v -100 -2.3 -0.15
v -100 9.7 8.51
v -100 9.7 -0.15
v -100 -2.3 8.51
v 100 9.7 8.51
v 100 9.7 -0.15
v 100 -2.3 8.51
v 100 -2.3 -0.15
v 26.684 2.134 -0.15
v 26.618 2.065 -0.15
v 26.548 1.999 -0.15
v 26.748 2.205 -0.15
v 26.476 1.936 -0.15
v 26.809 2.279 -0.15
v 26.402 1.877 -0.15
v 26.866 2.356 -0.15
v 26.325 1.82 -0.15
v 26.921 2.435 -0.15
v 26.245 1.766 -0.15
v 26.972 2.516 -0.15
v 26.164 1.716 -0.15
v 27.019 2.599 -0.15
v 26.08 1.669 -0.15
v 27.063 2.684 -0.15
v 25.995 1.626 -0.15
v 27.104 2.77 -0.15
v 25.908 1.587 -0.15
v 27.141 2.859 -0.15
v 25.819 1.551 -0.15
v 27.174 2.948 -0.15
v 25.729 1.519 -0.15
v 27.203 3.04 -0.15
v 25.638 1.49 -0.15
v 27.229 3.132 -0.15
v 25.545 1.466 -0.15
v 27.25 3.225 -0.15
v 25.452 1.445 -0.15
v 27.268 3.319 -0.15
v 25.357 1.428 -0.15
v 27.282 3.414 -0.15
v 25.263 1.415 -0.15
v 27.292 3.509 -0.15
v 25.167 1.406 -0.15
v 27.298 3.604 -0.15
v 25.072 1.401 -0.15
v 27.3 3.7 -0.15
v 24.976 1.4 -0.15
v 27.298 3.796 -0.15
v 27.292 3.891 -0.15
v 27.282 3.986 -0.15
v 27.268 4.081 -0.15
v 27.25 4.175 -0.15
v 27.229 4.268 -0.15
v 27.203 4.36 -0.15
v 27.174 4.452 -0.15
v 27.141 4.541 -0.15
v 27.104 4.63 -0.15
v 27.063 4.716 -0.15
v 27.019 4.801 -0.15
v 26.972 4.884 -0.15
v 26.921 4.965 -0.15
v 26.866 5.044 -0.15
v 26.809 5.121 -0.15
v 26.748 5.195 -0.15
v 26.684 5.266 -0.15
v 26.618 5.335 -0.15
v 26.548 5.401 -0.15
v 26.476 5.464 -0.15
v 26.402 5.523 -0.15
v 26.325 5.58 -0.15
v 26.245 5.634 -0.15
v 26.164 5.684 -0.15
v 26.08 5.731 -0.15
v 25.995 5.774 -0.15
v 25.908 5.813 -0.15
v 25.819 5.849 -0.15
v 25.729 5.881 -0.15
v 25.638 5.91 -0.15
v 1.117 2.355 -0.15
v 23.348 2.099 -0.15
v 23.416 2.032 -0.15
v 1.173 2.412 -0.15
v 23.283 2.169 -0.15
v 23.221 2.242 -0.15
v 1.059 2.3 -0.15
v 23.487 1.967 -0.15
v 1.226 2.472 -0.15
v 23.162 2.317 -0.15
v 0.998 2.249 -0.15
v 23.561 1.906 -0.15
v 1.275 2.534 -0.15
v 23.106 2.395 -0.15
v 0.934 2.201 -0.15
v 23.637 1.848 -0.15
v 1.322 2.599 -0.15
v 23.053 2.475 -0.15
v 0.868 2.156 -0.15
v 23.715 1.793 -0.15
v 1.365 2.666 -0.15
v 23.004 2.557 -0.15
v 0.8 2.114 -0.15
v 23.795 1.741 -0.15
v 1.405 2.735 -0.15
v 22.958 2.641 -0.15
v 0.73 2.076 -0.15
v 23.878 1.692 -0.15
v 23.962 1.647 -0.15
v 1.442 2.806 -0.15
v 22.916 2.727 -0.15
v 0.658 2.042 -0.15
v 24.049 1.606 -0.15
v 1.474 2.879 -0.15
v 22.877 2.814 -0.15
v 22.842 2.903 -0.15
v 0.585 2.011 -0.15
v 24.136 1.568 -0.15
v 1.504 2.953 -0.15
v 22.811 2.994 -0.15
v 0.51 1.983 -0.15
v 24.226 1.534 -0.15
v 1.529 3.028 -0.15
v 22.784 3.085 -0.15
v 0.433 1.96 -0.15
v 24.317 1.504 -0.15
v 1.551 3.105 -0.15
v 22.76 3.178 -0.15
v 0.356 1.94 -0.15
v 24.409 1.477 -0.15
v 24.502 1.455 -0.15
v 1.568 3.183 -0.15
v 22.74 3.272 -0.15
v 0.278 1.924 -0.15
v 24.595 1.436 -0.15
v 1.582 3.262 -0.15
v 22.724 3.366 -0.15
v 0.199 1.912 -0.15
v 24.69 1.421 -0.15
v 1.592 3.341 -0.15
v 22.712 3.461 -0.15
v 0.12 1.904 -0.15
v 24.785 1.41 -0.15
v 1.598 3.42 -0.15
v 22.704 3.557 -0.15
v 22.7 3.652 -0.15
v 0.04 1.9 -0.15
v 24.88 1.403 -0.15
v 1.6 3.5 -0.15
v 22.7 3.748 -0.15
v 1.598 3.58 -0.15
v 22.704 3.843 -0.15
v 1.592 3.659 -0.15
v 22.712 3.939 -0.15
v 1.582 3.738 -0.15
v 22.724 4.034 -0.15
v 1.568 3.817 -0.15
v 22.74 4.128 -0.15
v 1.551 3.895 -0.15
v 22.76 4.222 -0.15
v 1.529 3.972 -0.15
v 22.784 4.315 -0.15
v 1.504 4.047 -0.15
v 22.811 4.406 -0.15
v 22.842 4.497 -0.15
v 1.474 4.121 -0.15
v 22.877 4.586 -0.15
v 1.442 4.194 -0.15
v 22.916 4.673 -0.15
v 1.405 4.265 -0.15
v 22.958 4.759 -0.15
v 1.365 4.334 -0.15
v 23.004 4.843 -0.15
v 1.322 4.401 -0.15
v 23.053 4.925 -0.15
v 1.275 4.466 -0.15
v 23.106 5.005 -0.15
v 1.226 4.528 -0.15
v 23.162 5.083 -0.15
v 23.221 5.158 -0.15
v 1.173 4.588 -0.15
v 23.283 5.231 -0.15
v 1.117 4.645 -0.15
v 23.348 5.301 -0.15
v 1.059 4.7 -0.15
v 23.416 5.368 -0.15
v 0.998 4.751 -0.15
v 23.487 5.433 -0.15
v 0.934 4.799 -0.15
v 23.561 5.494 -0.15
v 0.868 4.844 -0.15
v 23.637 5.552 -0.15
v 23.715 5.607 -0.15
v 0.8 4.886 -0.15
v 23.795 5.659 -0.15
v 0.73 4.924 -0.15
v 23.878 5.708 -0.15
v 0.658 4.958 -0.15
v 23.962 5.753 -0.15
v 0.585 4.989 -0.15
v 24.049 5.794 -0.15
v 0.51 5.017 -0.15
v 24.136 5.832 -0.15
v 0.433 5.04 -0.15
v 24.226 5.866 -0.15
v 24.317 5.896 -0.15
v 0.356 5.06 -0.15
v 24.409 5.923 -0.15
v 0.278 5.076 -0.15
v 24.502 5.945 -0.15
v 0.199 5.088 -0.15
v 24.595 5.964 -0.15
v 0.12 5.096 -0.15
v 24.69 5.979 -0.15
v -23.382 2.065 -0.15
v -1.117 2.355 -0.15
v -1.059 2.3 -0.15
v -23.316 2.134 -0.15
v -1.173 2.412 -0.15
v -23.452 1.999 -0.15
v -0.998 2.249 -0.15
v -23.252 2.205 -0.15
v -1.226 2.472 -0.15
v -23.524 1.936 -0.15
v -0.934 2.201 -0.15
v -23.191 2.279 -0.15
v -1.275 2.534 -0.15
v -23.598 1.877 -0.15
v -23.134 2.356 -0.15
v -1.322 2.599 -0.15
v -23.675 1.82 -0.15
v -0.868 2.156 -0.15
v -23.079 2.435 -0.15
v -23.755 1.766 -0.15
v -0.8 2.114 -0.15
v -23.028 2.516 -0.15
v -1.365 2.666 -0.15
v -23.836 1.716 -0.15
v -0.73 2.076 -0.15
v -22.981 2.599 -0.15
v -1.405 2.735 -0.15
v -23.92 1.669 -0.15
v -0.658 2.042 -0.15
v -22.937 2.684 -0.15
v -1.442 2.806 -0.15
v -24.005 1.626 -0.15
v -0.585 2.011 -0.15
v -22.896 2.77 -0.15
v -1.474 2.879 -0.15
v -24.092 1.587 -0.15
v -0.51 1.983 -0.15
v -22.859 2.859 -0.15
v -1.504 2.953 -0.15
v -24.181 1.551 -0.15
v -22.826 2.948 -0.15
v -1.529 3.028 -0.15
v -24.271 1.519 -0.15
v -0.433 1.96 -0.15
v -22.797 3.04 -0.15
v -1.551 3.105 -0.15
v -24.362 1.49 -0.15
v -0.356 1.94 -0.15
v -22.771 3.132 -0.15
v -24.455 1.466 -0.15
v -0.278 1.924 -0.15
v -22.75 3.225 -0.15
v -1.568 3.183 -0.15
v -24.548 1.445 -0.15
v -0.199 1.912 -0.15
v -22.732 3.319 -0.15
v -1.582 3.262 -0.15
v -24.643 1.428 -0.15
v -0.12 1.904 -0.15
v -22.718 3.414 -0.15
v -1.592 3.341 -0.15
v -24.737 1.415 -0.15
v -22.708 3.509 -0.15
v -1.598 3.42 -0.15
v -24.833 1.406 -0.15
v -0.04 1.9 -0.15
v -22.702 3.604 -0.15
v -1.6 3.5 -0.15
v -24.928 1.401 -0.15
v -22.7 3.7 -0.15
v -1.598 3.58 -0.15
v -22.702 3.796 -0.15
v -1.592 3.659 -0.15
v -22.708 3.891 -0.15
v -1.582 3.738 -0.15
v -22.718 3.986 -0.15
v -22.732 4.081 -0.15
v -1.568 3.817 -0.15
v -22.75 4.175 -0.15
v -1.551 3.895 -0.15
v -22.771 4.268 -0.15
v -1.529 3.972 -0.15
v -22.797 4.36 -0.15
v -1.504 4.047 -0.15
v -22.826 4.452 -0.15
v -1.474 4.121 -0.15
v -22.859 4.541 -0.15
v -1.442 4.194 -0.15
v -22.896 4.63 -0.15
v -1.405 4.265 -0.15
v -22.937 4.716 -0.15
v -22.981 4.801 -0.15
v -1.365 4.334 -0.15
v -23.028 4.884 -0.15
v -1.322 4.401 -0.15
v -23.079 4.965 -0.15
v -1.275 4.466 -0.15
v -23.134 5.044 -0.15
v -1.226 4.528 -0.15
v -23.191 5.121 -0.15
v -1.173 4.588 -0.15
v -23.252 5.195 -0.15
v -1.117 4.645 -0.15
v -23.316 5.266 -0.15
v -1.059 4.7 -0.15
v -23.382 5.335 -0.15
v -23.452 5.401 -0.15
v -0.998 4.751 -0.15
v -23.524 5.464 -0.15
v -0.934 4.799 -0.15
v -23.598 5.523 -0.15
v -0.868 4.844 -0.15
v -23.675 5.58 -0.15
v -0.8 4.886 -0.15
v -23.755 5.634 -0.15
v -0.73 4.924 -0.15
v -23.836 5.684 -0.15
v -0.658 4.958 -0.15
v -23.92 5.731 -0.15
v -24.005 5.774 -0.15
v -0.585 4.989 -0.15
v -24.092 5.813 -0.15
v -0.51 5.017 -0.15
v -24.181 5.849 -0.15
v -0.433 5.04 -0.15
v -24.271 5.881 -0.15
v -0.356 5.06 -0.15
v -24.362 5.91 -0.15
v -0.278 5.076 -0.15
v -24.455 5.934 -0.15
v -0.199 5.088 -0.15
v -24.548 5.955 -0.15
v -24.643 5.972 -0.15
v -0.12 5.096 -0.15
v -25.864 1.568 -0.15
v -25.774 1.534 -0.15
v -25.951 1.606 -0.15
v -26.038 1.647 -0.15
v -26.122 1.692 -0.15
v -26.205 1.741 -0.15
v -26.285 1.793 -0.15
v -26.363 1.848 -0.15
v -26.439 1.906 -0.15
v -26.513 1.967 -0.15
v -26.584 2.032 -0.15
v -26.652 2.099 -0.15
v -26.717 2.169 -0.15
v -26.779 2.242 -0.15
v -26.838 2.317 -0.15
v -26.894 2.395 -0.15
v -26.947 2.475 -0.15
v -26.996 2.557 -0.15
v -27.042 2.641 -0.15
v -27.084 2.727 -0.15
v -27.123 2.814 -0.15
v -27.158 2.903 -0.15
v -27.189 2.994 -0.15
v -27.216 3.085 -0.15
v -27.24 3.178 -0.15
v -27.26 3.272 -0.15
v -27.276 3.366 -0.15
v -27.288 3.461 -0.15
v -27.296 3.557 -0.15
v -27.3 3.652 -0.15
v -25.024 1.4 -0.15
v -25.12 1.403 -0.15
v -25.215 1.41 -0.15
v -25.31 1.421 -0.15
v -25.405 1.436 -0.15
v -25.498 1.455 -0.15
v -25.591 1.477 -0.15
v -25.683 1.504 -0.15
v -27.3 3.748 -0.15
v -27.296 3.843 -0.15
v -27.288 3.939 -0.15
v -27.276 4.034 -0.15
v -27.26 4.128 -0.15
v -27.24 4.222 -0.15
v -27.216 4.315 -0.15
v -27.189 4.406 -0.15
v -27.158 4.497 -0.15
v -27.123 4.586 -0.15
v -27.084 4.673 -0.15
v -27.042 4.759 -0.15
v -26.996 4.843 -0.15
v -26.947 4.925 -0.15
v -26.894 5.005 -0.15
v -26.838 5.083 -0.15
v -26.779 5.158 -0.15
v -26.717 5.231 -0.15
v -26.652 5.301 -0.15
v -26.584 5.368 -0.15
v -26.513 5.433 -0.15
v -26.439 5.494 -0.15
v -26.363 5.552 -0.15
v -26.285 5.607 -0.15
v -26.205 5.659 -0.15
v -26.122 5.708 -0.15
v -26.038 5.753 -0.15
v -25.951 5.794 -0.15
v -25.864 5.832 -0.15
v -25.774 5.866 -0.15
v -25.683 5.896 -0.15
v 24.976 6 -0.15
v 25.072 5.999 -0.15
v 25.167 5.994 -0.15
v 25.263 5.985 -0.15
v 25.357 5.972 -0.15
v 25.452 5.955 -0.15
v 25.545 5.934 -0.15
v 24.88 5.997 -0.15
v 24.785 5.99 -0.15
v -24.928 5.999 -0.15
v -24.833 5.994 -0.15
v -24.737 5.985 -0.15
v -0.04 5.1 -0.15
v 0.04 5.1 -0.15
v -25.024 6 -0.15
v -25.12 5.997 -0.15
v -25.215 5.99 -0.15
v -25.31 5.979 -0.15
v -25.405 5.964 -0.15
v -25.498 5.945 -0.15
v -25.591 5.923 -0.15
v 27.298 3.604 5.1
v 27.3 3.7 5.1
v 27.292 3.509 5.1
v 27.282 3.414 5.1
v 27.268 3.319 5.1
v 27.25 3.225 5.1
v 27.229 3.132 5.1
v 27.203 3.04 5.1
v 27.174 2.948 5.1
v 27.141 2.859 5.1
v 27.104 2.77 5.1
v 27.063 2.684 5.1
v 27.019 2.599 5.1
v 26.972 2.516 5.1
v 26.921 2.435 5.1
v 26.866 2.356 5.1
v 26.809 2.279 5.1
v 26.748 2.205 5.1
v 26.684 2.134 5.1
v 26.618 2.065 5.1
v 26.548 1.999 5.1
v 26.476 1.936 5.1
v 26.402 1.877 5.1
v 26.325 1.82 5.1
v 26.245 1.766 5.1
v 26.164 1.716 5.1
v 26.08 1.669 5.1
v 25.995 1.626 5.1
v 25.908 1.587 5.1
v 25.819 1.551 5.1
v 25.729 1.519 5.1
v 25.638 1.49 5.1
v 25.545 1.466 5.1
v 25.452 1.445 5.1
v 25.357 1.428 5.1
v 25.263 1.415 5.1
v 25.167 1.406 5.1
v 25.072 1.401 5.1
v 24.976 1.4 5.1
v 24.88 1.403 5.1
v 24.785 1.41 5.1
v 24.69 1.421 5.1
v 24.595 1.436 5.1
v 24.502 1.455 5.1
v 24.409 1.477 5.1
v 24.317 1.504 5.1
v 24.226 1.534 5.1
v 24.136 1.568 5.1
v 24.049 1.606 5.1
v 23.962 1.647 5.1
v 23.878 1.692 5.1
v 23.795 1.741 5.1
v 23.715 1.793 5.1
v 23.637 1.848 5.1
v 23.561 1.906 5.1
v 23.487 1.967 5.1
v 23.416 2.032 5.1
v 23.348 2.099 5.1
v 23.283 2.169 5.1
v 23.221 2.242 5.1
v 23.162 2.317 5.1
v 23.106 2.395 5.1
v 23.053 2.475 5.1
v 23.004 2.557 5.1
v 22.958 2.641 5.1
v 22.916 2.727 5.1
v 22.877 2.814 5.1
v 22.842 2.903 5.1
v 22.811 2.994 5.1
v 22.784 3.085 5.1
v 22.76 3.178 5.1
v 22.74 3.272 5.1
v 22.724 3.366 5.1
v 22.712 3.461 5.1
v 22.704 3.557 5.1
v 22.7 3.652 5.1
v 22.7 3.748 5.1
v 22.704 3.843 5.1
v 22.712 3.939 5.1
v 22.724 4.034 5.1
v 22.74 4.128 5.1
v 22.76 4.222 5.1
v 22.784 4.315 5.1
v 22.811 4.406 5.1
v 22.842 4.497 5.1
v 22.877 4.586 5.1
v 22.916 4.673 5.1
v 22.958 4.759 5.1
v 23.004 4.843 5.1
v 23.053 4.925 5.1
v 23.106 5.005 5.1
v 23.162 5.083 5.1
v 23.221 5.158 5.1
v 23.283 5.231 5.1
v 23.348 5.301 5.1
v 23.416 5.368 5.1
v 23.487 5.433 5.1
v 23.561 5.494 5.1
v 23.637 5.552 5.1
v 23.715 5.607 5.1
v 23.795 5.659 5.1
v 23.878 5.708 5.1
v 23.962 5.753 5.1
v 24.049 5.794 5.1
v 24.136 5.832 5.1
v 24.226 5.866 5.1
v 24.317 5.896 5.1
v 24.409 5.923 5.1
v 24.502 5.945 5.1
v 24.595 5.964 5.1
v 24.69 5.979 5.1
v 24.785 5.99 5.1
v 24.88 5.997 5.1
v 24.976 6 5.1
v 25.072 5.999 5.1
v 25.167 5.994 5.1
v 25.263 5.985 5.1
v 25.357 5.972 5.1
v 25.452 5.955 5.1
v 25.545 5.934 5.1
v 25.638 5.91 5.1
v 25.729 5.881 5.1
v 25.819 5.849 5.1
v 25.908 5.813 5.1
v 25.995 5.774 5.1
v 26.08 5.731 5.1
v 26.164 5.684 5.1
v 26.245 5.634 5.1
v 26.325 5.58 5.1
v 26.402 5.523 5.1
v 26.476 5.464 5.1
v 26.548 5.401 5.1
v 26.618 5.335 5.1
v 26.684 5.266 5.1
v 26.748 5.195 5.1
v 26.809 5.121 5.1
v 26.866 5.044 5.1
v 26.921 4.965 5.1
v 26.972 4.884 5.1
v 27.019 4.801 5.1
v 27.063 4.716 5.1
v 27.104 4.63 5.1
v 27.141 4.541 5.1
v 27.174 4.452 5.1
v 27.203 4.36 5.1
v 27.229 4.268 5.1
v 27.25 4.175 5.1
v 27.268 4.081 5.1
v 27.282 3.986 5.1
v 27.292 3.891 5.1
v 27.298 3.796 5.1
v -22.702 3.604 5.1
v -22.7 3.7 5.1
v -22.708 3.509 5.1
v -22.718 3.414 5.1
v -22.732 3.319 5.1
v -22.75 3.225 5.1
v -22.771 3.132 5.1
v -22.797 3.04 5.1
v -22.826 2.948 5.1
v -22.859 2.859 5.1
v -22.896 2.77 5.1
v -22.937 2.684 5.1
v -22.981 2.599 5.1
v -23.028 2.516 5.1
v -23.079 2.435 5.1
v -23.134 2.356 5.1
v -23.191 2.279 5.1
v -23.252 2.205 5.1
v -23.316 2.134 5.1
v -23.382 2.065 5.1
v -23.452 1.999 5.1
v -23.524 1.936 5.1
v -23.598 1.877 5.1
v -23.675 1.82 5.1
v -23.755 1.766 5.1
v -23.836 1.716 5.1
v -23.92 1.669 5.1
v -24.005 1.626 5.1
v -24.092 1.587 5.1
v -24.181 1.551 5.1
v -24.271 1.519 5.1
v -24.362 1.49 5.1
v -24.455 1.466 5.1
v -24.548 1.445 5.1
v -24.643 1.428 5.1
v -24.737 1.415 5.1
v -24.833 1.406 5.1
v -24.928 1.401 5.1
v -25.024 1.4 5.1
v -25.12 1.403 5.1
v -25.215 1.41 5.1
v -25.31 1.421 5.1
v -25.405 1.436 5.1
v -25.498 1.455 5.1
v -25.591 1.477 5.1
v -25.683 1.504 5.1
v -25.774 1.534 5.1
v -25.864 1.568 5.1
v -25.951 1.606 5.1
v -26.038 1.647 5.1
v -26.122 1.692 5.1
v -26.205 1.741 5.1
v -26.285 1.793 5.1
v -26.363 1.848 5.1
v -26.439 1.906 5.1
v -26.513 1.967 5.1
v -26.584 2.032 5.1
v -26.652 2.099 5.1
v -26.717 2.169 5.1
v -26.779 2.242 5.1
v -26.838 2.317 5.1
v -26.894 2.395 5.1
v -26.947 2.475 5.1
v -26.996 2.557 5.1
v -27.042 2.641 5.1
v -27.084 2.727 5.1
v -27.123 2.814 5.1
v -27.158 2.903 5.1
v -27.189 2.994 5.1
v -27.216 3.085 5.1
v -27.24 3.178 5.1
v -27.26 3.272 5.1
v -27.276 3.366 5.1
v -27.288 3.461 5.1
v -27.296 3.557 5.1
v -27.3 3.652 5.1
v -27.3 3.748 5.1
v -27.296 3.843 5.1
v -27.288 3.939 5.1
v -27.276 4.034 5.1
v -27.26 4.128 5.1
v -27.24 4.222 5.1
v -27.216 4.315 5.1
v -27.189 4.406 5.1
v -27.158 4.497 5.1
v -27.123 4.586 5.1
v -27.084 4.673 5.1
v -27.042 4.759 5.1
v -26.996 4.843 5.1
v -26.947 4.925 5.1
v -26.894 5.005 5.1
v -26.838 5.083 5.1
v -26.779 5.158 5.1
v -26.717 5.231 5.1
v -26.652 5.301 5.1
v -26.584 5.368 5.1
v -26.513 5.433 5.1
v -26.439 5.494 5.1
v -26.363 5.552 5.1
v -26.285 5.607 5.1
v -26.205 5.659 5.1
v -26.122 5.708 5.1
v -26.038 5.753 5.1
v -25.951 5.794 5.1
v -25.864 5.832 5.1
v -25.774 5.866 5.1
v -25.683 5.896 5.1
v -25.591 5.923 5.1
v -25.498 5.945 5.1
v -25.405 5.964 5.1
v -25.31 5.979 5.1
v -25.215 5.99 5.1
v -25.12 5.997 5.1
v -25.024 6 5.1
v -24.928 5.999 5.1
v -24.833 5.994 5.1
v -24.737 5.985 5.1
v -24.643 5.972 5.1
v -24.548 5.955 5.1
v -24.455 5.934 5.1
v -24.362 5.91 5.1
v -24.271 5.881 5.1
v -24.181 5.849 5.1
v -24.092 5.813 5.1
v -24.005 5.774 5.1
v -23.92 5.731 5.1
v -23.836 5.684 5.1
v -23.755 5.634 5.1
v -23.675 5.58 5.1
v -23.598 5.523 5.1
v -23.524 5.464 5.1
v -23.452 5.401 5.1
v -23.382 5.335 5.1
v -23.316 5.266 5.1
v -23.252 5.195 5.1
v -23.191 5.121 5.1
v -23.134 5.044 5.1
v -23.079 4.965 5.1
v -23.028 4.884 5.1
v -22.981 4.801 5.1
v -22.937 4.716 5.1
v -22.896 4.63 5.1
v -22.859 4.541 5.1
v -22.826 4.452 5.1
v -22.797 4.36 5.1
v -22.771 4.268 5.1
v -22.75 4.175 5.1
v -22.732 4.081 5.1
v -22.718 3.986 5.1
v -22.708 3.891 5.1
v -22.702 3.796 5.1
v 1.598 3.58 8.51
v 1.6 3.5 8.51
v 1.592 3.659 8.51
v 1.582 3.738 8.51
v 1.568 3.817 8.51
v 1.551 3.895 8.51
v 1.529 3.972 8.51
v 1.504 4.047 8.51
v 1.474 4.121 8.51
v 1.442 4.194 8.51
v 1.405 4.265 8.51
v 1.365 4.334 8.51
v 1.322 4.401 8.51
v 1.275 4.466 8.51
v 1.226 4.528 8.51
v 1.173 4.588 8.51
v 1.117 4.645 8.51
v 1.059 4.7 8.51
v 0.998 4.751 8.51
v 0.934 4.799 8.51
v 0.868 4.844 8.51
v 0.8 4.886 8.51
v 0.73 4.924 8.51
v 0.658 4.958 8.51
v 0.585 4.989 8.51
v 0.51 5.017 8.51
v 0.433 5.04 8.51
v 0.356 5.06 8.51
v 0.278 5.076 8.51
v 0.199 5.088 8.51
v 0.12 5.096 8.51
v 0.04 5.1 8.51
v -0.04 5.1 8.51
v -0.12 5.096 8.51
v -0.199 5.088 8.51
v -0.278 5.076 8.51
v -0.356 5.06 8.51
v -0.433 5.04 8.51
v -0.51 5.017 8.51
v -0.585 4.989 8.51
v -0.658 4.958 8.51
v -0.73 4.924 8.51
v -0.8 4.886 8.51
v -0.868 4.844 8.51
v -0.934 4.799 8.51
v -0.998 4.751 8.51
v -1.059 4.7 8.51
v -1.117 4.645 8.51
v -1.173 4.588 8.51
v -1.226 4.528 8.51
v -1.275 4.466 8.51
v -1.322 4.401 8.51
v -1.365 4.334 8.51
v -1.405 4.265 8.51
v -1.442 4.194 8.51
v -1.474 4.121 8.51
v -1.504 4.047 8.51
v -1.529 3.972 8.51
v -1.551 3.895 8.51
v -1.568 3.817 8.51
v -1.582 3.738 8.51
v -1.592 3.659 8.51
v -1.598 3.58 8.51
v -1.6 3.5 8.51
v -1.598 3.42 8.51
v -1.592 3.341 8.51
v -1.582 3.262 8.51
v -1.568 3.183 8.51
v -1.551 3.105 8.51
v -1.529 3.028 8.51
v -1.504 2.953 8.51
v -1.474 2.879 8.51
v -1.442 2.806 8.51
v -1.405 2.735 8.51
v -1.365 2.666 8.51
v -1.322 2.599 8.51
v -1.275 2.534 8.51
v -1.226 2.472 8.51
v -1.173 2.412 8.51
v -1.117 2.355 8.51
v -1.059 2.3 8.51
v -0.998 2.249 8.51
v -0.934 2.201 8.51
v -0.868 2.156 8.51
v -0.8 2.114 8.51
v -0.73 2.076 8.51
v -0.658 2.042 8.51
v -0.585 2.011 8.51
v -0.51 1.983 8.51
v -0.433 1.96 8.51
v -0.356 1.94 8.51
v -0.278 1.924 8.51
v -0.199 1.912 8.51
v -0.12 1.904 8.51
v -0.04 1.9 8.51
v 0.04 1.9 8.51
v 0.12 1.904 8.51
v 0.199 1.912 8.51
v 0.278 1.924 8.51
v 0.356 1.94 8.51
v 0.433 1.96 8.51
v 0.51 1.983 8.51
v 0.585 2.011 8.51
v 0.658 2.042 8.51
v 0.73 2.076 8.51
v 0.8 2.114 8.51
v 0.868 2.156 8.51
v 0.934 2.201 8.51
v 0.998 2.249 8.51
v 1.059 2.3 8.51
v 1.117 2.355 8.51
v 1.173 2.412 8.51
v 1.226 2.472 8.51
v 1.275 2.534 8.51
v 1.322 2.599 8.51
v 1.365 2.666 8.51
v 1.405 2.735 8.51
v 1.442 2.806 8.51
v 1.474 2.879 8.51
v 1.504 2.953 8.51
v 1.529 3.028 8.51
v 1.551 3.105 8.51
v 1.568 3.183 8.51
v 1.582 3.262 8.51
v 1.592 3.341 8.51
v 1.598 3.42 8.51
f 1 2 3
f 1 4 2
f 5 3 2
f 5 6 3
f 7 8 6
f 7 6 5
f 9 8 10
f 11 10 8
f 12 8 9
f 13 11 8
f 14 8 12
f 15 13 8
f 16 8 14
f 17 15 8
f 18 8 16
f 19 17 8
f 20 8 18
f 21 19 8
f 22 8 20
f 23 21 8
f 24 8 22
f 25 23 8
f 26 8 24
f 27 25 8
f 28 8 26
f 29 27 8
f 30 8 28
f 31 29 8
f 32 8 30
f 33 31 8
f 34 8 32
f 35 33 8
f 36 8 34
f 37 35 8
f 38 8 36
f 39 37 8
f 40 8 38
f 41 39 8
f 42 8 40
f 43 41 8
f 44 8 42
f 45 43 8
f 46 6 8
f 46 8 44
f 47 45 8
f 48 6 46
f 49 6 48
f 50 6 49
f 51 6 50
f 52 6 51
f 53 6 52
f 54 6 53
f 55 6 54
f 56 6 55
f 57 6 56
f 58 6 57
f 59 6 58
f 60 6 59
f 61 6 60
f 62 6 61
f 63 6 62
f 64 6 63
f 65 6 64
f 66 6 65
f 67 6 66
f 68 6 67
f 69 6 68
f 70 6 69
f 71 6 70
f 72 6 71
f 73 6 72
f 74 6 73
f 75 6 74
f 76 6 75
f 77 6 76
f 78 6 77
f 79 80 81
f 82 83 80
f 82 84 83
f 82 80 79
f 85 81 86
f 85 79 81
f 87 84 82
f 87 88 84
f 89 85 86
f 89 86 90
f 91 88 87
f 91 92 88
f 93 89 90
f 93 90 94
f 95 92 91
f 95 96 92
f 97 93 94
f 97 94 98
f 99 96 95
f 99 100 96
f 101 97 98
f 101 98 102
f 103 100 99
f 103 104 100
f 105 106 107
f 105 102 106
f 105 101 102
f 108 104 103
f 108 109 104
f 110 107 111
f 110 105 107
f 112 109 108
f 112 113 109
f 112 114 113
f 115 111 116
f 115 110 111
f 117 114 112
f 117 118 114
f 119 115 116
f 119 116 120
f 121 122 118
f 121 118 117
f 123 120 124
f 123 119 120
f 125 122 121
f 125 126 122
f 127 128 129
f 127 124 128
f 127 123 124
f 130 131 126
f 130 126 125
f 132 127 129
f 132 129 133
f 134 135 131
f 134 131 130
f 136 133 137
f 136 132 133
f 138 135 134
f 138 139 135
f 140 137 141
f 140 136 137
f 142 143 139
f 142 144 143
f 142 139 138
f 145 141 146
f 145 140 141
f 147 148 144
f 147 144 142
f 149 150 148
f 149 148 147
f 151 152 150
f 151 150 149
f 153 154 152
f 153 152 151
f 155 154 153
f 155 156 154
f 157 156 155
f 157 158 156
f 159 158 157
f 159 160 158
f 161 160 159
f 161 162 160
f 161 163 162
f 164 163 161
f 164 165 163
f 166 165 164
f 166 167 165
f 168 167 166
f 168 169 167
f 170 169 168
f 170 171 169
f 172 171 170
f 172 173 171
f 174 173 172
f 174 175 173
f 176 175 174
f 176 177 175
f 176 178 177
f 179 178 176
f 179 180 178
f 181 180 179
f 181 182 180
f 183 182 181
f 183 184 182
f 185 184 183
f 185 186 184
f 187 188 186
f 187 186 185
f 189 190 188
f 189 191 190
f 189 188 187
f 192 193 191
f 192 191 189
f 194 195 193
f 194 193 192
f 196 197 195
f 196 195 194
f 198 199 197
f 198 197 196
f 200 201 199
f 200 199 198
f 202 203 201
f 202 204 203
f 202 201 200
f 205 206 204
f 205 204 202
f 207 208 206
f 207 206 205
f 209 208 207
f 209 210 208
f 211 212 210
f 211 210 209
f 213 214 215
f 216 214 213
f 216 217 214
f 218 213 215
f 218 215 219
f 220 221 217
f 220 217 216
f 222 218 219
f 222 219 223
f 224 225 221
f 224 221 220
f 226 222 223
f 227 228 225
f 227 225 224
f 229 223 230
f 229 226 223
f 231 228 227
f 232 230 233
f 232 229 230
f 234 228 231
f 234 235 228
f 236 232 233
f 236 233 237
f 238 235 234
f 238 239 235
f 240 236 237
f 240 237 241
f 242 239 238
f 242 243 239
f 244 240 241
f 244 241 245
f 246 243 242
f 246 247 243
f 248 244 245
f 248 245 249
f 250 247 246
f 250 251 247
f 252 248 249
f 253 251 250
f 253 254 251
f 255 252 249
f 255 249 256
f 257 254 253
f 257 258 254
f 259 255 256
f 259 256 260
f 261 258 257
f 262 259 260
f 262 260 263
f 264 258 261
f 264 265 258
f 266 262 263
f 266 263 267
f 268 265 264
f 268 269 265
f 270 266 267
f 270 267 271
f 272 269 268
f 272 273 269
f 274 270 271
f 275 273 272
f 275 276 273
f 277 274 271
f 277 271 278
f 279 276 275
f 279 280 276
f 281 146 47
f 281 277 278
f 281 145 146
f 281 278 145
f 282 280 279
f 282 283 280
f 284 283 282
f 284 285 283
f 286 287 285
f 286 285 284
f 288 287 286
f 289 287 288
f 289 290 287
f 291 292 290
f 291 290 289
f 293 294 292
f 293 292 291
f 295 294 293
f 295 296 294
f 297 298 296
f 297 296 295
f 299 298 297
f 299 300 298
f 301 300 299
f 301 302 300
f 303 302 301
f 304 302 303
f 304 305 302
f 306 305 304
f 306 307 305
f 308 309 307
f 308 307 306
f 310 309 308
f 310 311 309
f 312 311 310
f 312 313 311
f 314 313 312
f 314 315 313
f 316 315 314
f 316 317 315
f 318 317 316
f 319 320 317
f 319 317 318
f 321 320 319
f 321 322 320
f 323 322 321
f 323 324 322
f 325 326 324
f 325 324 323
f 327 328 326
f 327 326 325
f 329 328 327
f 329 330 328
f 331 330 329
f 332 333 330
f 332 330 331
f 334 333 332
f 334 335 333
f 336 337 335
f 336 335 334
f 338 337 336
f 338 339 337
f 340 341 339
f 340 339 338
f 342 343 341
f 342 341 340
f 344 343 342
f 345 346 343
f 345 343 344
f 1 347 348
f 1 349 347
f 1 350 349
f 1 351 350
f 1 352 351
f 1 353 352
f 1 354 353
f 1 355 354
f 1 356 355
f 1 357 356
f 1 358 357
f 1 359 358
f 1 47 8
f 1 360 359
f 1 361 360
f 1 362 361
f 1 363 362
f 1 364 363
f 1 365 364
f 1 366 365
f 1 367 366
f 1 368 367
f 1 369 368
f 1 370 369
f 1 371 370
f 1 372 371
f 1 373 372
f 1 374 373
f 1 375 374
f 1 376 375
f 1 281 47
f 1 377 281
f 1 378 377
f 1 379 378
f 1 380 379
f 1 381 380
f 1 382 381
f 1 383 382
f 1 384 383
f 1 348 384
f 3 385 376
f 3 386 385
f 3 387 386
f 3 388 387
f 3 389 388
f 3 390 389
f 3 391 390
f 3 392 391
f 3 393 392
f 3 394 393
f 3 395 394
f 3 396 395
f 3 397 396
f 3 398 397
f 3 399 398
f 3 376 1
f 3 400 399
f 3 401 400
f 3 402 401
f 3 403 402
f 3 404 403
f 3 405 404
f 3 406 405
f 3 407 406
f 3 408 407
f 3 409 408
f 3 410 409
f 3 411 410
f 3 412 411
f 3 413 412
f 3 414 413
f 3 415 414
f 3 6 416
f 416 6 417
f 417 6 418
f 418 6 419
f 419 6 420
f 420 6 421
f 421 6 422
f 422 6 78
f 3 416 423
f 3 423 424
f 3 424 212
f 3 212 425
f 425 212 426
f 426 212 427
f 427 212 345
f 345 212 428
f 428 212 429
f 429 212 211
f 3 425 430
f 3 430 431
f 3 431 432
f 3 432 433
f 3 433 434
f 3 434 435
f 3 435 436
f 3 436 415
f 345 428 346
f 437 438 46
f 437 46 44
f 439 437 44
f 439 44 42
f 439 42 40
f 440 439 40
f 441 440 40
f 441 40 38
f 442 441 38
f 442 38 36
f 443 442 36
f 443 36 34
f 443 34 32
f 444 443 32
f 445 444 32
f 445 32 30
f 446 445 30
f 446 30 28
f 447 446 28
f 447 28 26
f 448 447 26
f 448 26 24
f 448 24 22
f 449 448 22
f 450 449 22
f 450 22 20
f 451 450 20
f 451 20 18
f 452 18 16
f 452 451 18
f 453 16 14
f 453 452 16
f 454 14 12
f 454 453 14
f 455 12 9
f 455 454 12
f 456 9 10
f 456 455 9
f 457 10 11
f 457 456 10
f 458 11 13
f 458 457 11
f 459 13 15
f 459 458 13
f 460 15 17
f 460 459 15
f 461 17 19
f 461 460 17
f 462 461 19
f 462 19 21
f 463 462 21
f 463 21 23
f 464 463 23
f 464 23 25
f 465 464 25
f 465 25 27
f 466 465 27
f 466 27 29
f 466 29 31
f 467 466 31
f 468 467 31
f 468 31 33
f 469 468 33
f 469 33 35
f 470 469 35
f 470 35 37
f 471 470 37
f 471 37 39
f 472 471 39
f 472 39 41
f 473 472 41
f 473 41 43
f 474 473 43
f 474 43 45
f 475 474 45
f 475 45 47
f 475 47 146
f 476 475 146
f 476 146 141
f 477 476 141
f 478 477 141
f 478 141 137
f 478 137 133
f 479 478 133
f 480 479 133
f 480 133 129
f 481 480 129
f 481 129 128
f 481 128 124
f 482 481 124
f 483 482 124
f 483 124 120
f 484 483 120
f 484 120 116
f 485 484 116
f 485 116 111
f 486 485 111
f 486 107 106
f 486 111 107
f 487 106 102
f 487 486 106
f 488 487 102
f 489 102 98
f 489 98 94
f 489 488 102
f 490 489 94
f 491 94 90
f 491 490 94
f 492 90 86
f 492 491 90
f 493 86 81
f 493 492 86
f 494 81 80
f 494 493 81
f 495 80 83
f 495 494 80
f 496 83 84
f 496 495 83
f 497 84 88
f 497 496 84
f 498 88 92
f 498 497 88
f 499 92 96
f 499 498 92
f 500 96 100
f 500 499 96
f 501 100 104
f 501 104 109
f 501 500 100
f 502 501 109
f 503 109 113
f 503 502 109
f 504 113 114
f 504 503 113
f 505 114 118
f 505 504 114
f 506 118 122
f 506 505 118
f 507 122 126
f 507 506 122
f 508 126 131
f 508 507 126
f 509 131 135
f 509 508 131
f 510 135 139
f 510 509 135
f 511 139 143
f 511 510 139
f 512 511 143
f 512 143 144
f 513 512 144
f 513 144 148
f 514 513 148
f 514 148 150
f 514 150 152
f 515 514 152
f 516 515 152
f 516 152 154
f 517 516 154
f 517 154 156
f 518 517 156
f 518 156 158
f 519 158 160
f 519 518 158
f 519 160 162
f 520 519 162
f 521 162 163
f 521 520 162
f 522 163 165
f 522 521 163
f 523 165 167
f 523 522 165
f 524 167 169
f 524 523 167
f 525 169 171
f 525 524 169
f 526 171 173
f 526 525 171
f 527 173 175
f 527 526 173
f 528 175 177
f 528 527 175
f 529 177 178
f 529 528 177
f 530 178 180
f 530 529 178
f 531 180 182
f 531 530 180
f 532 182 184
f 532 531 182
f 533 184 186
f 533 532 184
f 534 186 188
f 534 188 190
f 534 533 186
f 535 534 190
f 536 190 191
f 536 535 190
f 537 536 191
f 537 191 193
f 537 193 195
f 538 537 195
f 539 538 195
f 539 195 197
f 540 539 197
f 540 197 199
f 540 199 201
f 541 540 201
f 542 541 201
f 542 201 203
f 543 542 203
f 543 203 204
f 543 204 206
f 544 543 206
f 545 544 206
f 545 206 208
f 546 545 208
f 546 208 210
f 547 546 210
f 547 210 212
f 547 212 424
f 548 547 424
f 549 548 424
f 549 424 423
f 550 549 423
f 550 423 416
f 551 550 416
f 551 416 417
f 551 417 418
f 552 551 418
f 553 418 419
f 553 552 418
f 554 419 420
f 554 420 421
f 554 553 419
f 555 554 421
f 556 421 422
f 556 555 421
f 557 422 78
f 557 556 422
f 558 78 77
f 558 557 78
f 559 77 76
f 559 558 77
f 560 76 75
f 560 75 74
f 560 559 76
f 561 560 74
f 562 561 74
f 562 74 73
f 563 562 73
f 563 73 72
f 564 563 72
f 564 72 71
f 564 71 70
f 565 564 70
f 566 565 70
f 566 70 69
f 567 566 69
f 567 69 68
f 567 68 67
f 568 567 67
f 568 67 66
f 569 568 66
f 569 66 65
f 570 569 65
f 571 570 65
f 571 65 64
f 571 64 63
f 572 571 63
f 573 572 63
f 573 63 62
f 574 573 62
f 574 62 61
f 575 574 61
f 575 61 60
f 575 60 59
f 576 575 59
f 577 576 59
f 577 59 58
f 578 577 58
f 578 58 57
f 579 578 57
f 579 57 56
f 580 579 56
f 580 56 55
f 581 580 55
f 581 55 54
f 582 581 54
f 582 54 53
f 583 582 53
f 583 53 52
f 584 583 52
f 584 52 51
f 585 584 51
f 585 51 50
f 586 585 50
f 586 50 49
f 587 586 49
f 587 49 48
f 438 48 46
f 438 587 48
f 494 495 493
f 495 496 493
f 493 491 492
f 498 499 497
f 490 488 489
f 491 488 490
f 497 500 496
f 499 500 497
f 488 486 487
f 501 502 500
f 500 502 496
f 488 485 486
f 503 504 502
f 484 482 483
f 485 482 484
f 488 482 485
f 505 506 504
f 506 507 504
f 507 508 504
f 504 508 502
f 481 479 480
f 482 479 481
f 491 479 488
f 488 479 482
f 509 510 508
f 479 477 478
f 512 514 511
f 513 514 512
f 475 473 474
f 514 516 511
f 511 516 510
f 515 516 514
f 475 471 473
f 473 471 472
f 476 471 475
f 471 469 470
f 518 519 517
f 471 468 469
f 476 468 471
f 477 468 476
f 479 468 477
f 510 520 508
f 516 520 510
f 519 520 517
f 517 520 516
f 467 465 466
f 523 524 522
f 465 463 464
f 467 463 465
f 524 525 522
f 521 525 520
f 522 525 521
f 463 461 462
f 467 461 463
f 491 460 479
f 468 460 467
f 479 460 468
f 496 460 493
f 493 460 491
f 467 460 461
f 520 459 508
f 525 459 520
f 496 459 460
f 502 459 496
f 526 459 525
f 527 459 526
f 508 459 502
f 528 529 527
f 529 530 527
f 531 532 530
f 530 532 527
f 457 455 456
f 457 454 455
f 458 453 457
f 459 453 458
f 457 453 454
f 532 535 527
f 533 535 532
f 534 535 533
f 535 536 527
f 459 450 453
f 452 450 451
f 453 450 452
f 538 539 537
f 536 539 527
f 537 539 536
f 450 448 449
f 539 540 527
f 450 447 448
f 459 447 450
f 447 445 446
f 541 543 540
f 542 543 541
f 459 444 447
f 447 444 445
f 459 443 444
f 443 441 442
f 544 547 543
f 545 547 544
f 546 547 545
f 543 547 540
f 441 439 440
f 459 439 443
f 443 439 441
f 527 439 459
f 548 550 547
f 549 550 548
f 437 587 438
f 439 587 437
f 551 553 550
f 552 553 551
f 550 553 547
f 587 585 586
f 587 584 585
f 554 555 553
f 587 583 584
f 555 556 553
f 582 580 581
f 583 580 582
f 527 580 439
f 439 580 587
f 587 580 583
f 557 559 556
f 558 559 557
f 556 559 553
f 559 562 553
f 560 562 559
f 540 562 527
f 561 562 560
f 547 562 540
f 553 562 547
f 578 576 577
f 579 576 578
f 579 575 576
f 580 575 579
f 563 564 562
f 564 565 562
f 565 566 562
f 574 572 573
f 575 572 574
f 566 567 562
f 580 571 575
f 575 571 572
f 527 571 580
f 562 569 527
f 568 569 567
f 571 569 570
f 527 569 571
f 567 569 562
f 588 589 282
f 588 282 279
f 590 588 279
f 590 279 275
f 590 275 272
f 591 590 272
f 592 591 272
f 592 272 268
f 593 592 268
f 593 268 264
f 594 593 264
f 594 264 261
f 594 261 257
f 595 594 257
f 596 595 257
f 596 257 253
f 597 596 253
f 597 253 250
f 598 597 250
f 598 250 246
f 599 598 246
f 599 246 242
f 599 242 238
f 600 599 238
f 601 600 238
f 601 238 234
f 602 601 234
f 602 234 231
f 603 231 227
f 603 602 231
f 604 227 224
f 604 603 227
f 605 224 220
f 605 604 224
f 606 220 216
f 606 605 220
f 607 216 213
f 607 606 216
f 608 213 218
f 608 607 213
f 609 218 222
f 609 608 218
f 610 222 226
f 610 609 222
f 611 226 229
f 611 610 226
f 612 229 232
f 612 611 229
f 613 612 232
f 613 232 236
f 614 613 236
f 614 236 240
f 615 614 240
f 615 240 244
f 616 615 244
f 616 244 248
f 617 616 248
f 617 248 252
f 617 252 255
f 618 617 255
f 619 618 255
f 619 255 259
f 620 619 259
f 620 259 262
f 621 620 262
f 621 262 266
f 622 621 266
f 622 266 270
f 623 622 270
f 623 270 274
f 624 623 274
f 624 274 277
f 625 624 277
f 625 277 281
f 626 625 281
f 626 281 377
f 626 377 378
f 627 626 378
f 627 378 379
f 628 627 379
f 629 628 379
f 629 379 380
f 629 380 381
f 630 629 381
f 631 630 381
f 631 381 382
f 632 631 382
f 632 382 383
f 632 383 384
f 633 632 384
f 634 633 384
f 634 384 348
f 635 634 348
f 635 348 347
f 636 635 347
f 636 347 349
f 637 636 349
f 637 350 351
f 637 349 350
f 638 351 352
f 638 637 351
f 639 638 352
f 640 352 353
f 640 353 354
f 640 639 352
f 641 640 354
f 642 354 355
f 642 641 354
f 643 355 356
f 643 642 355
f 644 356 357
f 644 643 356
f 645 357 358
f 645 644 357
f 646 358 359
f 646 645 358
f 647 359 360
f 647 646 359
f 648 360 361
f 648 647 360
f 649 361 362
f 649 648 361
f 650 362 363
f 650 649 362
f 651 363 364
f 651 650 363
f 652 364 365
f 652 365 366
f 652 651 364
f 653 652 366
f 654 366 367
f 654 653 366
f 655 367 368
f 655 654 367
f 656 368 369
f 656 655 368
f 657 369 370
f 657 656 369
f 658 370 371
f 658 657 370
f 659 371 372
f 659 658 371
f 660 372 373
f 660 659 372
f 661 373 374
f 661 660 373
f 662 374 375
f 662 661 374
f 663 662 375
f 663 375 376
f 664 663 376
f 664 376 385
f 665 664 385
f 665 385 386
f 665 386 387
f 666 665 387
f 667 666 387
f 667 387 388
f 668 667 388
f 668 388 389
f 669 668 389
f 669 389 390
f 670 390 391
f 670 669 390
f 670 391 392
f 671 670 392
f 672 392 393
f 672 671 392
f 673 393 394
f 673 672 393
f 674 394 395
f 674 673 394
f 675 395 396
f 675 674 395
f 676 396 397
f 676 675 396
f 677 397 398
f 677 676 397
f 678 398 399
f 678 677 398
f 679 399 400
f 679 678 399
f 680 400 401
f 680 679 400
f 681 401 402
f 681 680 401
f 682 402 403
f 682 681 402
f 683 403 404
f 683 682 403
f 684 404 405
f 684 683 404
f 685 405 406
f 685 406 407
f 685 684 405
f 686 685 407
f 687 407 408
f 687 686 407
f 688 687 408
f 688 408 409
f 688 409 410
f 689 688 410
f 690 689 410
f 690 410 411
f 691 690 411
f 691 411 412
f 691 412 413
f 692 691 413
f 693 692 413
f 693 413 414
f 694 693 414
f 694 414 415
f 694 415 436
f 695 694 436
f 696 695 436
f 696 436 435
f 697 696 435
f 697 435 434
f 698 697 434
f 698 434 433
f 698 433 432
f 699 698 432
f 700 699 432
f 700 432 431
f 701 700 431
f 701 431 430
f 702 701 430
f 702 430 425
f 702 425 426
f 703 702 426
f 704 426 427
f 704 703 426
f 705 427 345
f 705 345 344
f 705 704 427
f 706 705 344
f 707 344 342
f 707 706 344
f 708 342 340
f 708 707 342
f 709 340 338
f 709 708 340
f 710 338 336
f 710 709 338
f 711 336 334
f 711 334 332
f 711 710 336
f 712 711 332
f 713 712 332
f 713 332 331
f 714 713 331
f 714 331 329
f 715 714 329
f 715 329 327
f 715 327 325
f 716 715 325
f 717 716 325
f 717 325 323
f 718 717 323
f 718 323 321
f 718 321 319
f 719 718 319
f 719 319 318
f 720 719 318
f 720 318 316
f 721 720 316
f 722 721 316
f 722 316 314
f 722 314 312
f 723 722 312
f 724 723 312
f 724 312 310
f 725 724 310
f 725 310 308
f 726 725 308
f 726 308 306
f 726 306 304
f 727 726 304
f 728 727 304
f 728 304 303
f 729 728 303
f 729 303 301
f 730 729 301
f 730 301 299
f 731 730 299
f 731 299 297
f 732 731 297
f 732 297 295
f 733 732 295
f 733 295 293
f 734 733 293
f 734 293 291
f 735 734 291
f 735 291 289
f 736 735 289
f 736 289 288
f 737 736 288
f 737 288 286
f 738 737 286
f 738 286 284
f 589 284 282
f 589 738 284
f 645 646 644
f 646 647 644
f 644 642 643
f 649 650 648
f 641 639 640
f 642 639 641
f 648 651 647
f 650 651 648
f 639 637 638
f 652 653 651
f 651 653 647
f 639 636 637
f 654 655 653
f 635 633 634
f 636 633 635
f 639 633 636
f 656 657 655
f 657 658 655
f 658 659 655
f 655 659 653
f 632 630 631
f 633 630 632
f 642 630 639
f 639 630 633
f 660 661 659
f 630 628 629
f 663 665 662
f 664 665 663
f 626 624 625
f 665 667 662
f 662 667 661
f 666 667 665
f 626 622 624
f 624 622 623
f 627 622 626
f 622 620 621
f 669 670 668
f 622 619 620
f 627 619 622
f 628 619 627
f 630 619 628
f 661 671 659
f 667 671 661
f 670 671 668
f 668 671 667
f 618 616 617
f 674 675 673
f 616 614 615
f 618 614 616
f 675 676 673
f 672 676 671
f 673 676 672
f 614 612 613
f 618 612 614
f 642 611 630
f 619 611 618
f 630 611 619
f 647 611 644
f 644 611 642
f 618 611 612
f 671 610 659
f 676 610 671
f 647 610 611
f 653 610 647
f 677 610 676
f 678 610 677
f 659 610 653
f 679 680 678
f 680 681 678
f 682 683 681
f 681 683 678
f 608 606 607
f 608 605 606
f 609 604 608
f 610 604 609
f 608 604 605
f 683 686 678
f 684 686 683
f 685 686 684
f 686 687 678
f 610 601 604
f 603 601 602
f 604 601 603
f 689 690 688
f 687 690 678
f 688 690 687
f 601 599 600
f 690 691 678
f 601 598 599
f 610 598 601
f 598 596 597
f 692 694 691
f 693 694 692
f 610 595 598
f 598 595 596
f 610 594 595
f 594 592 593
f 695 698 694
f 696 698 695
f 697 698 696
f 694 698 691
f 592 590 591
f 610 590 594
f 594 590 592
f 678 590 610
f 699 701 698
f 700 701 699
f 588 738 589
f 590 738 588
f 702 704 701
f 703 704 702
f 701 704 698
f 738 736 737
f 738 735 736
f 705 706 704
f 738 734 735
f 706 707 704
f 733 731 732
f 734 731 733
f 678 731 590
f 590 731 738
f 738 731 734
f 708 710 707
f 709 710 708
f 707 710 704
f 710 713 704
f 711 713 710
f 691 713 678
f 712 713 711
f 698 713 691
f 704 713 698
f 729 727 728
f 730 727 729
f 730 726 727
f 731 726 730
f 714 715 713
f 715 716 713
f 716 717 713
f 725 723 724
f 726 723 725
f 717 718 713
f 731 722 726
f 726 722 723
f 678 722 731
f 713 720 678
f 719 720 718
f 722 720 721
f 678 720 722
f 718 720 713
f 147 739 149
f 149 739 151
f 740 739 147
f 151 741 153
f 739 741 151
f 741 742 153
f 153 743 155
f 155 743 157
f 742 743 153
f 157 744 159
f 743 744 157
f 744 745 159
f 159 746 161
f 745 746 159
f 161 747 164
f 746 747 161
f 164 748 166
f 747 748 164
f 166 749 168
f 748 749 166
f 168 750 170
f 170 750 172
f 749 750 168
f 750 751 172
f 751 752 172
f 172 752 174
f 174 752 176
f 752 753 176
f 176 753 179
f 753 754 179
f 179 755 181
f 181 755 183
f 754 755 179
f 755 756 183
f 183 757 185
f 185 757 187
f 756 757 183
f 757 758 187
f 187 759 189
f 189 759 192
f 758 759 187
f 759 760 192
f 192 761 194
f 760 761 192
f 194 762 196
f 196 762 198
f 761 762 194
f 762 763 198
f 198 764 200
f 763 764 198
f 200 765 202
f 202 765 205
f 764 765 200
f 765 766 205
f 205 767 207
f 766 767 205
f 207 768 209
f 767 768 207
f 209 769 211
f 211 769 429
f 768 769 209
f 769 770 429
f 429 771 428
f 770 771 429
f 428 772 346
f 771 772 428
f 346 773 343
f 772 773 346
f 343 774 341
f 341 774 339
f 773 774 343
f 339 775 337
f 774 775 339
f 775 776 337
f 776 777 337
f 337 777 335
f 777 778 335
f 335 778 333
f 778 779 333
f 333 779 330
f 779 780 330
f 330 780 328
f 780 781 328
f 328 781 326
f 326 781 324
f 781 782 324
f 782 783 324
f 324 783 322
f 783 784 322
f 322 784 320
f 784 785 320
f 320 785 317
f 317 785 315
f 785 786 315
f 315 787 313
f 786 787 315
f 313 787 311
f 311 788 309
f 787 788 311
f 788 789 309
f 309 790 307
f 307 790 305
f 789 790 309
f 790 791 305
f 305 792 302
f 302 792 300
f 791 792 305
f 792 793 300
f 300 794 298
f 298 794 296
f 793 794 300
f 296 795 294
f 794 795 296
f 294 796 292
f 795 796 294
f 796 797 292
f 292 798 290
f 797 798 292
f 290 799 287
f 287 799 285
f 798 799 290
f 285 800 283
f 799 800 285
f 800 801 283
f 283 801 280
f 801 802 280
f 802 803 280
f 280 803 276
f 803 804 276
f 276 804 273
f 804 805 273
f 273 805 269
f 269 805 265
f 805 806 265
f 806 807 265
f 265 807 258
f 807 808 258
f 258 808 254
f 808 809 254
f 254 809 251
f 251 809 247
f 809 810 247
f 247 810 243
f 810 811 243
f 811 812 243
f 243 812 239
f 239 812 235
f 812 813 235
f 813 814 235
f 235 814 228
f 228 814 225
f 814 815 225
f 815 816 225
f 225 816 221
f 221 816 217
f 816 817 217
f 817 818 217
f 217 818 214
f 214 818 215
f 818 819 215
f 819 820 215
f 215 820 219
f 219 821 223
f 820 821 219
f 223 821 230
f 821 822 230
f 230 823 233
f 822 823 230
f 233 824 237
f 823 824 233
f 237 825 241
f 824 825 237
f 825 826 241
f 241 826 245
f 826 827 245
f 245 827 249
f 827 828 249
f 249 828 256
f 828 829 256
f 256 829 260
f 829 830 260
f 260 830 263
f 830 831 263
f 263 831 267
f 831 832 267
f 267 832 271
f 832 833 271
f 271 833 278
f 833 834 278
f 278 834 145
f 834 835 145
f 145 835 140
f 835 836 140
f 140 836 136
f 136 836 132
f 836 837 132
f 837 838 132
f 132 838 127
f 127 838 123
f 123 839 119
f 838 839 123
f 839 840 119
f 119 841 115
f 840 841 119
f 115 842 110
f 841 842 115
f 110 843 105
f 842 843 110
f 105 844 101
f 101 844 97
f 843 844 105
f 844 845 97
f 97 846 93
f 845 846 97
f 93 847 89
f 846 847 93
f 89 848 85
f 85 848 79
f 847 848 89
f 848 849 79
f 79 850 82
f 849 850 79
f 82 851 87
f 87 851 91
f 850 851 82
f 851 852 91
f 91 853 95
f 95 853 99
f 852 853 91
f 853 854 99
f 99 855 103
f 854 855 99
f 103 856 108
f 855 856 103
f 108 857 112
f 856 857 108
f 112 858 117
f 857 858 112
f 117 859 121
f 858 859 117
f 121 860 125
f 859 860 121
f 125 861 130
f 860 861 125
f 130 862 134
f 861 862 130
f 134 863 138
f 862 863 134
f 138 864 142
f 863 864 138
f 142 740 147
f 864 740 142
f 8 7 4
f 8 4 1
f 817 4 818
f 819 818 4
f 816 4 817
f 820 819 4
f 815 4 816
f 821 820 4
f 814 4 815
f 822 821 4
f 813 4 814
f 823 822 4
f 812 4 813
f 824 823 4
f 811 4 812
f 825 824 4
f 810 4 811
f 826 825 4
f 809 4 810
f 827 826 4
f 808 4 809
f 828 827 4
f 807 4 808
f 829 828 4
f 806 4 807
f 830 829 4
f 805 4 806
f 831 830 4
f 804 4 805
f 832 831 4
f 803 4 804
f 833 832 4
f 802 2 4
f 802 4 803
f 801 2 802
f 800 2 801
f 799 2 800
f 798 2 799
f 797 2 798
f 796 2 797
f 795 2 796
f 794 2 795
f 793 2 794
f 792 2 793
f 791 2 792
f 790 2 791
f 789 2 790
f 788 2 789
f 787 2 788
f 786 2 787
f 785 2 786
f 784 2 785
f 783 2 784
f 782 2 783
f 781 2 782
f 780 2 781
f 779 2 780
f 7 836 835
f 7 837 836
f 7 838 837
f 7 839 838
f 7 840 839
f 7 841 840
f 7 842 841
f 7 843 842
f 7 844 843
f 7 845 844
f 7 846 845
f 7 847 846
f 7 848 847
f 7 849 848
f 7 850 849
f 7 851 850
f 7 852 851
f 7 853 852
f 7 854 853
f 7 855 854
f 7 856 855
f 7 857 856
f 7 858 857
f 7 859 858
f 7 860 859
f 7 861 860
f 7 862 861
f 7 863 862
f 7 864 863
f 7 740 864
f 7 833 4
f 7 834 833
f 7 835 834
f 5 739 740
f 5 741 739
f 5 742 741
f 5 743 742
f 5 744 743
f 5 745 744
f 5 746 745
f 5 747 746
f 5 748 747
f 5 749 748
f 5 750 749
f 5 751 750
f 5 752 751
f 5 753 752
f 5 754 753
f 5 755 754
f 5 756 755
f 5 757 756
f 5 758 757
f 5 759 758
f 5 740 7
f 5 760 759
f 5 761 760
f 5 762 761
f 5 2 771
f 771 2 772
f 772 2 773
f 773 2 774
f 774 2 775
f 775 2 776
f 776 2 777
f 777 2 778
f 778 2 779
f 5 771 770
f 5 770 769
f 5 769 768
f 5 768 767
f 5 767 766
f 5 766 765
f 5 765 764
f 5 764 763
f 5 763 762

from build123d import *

# Parameters (mm, degrees)
SKETCH_W            = 60
SKETCH_H            = 15
PAD_DEPTH           = 8.51
SKETCH001_R         = 1.6
POCKET_DEPTH        = 8.511
SKETCH002_R         = 2.3
POCKET001_DEPTH     = 5.1
POCKET001_FACE1_W   = 60
POCKET001_FACE1_H   = 8.51
PAD001_DEPTH        = 2.3
PAD001_FACE1_W      = 60
PAD001_FACE1_H      = 8.51
POCKET002_DEPTH     = 5.3
POCKET002_FACE2_W   = 12
POCKET002_FACE2_H   = 60
POCKET002_FACE2_R   = 1.6
POCKET002_FACE2_R_2 = 2.3
PAD002_DEPTH        = 0.15
PAD002_FACE10_W     = 12
PAD002_FACE10_H     = 8.66
PAD003_DEPTH        = 70
PAD003_FACE3_W      = 12
PAD003_FACE3_H      = 8.66
PAD004_DEPTH        = 70


with BuildPart() as part:
    # Sketch → Pad (new body)
    with BuildSketch(Plane.XY):
        with Locations((0, 7.5)):
            Rectangle(SKETCH_W, SKETCH_H)
    extrude(amount=PAD_DEPTH)

    # Sketch001 (on Face6 of Pad) → Pocket (cut, through all)
    with BuildSketch(Plane.XY.offset(8.51)):
        with Locations((0, 3.5)):
            Circle(SKETCH001_R)
    extrude(amount=-POCKET_DEPTH, mode=Mode.SUBTRACT)

    # Sketch002 (on Face4 of Pocket) → Pocket001 (cut)
    with BuildSketch(Plane(origin=(0, 0, 0), x_dir=(1, 0, 0), z_dir=(0, 0, -1))):
        with Locations((-25, -3.7)):
            Circle(SKETCH002_R)
        with Locations((25, -3.7)):
            Circle(SKETCH002_R)
    extrude(amount=-POCKET001_DEPTH, mode=Mode.SUBTRACT)

    # Pocket001 Face1 → Pad001 (add)
    with BuildSketch(Plane(origin=(0, 0, 4.255), x_dir=(-1, 0, 0), z_dir=(0, -1, 0))):
        Rectangle(POCKET001_FACE1_W, POCKET001_FACE1_H)
    extrude(amount=PAD001_DEPTH)

    # Pad001 Face1 → Pocket002 (cut)
    with BuildSketch(Plane(origin=(0, 15, 4.255), x_dir=(1, 0, 0), z_dir=(0, 1, 0))):
        Rectangle(PAD001_FACE1_W, PAD001_FACE1_H)
    extrude(amount=-POCKET002_DEPTH, mode=Mode.SUBTRACT)

    # Pocket002 Face2 → Pad002 (add)
    with BuildSketch(Plane(origin=(0, 3.70237, 0), x_dir=(0, -1, 0), z_dir=(0, 0, -1))):
        with Locations((0.00237, 0)):
            Rectangle(POCKET002_FACE2_W, POCKET002_FACE2_H)
        with Locations((0.20237, 0)):
            Circle(POCKET002_FACE2_R, mode=Mode.SUBTRACT)
        with Locations((0.00237, -25)):
            Circle(POCKET002_FACE2_R_2, mode=Mode.SUBTRACT)
        with Locations((0.00237, 25)):
            Circle(POCKET002_FACE2_R_2, mode=Mode.SUBTRACT)
    extrude(amount=PAD002_DEPTH)

    # Pad002 Face10 → Pad003 (add)
    with BuildSketch(Plane(origin=(-30, 3.7, 4.18), x_dir=(0, 1, 0), z_dir=(-1, 0, 0))):
        Rectangle(PAD002_FACE10_W, PAD002_FACE10_H)
    extrude(amount=PAD003_DEPTH)

    # Pad003 Face3 → Pad004 (add)
    with BuildSketch(Plane(origin=(30, 3.7, 4.18), x_dir=(0, -1, 0), z_dir=(1, 0, 0))):
        Rectangle(PAD003_FACE3_W, PAD003_FACE3_H)
    extrude(amount=PAD004_DEPTH)


solid = part.part
